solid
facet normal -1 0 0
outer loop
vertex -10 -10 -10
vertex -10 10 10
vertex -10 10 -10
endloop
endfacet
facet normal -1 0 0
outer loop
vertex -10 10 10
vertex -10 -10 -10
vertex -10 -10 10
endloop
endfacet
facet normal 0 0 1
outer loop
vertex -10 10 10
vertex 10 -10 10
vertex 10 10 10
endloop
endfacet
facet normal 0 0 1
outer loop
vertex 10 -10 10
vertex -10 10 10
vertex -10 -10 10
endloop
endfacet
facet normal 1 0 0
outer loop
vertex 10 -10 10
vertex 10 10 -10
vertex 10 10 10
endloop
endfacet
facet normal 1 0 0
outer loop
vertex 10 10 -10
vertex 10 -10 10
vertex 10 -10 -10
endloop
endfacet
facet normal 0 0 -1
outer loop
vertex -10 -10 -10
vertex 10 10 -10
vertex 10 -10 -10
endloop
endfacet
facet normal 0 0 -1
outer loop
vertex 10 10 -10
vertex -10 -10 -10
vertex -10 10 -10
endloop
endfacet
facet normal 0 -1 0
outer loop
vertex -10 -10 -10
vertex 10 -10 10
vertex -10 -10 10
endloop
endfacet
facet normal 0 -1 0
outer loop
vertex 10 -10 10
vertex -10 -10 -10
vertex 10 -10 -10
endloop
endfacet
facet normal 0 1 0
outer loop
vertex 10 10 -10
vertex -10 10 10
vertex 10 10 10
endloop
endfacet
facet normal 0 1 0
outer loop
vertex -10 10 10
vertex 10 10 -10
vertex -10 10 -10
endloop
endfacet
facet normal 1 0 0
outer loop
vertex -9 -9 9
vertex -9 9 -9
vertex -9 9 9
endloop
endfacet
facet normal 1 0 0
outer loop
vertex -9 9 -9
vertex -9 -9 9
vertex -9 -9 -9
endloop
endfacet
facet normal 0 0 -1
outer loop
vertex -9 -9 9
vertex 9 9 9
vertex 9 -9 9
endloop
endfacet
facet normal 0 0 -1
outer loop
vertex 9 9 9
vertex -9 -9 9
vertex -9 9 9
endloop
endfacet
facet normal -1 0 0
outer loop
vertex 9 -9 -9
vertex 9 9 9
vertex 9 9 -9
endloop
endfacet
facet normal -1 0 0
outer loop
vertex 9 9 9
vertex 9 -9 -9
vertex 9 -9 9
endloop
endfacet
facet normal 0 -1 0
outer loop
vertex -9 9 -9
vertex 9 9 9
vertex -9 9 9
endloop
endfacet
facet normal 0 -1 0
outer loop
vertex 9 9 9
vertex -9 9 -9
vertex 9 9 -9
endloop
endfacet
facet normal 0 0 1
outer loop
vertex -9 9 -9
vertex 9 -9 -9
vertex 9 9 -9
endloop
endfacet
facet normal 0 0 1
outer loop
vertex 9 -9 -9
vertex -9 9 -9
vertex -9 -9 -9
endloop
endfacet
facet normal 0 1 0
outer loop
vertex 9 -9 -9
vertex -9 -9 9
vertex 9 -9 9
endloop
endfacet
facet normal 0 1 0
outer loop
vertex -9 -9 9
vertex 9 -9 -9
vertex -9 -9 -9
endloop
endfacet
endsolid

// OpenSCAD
difference() {
    cube(size=20, center=true);
    cube(size=18, center=true);
}
